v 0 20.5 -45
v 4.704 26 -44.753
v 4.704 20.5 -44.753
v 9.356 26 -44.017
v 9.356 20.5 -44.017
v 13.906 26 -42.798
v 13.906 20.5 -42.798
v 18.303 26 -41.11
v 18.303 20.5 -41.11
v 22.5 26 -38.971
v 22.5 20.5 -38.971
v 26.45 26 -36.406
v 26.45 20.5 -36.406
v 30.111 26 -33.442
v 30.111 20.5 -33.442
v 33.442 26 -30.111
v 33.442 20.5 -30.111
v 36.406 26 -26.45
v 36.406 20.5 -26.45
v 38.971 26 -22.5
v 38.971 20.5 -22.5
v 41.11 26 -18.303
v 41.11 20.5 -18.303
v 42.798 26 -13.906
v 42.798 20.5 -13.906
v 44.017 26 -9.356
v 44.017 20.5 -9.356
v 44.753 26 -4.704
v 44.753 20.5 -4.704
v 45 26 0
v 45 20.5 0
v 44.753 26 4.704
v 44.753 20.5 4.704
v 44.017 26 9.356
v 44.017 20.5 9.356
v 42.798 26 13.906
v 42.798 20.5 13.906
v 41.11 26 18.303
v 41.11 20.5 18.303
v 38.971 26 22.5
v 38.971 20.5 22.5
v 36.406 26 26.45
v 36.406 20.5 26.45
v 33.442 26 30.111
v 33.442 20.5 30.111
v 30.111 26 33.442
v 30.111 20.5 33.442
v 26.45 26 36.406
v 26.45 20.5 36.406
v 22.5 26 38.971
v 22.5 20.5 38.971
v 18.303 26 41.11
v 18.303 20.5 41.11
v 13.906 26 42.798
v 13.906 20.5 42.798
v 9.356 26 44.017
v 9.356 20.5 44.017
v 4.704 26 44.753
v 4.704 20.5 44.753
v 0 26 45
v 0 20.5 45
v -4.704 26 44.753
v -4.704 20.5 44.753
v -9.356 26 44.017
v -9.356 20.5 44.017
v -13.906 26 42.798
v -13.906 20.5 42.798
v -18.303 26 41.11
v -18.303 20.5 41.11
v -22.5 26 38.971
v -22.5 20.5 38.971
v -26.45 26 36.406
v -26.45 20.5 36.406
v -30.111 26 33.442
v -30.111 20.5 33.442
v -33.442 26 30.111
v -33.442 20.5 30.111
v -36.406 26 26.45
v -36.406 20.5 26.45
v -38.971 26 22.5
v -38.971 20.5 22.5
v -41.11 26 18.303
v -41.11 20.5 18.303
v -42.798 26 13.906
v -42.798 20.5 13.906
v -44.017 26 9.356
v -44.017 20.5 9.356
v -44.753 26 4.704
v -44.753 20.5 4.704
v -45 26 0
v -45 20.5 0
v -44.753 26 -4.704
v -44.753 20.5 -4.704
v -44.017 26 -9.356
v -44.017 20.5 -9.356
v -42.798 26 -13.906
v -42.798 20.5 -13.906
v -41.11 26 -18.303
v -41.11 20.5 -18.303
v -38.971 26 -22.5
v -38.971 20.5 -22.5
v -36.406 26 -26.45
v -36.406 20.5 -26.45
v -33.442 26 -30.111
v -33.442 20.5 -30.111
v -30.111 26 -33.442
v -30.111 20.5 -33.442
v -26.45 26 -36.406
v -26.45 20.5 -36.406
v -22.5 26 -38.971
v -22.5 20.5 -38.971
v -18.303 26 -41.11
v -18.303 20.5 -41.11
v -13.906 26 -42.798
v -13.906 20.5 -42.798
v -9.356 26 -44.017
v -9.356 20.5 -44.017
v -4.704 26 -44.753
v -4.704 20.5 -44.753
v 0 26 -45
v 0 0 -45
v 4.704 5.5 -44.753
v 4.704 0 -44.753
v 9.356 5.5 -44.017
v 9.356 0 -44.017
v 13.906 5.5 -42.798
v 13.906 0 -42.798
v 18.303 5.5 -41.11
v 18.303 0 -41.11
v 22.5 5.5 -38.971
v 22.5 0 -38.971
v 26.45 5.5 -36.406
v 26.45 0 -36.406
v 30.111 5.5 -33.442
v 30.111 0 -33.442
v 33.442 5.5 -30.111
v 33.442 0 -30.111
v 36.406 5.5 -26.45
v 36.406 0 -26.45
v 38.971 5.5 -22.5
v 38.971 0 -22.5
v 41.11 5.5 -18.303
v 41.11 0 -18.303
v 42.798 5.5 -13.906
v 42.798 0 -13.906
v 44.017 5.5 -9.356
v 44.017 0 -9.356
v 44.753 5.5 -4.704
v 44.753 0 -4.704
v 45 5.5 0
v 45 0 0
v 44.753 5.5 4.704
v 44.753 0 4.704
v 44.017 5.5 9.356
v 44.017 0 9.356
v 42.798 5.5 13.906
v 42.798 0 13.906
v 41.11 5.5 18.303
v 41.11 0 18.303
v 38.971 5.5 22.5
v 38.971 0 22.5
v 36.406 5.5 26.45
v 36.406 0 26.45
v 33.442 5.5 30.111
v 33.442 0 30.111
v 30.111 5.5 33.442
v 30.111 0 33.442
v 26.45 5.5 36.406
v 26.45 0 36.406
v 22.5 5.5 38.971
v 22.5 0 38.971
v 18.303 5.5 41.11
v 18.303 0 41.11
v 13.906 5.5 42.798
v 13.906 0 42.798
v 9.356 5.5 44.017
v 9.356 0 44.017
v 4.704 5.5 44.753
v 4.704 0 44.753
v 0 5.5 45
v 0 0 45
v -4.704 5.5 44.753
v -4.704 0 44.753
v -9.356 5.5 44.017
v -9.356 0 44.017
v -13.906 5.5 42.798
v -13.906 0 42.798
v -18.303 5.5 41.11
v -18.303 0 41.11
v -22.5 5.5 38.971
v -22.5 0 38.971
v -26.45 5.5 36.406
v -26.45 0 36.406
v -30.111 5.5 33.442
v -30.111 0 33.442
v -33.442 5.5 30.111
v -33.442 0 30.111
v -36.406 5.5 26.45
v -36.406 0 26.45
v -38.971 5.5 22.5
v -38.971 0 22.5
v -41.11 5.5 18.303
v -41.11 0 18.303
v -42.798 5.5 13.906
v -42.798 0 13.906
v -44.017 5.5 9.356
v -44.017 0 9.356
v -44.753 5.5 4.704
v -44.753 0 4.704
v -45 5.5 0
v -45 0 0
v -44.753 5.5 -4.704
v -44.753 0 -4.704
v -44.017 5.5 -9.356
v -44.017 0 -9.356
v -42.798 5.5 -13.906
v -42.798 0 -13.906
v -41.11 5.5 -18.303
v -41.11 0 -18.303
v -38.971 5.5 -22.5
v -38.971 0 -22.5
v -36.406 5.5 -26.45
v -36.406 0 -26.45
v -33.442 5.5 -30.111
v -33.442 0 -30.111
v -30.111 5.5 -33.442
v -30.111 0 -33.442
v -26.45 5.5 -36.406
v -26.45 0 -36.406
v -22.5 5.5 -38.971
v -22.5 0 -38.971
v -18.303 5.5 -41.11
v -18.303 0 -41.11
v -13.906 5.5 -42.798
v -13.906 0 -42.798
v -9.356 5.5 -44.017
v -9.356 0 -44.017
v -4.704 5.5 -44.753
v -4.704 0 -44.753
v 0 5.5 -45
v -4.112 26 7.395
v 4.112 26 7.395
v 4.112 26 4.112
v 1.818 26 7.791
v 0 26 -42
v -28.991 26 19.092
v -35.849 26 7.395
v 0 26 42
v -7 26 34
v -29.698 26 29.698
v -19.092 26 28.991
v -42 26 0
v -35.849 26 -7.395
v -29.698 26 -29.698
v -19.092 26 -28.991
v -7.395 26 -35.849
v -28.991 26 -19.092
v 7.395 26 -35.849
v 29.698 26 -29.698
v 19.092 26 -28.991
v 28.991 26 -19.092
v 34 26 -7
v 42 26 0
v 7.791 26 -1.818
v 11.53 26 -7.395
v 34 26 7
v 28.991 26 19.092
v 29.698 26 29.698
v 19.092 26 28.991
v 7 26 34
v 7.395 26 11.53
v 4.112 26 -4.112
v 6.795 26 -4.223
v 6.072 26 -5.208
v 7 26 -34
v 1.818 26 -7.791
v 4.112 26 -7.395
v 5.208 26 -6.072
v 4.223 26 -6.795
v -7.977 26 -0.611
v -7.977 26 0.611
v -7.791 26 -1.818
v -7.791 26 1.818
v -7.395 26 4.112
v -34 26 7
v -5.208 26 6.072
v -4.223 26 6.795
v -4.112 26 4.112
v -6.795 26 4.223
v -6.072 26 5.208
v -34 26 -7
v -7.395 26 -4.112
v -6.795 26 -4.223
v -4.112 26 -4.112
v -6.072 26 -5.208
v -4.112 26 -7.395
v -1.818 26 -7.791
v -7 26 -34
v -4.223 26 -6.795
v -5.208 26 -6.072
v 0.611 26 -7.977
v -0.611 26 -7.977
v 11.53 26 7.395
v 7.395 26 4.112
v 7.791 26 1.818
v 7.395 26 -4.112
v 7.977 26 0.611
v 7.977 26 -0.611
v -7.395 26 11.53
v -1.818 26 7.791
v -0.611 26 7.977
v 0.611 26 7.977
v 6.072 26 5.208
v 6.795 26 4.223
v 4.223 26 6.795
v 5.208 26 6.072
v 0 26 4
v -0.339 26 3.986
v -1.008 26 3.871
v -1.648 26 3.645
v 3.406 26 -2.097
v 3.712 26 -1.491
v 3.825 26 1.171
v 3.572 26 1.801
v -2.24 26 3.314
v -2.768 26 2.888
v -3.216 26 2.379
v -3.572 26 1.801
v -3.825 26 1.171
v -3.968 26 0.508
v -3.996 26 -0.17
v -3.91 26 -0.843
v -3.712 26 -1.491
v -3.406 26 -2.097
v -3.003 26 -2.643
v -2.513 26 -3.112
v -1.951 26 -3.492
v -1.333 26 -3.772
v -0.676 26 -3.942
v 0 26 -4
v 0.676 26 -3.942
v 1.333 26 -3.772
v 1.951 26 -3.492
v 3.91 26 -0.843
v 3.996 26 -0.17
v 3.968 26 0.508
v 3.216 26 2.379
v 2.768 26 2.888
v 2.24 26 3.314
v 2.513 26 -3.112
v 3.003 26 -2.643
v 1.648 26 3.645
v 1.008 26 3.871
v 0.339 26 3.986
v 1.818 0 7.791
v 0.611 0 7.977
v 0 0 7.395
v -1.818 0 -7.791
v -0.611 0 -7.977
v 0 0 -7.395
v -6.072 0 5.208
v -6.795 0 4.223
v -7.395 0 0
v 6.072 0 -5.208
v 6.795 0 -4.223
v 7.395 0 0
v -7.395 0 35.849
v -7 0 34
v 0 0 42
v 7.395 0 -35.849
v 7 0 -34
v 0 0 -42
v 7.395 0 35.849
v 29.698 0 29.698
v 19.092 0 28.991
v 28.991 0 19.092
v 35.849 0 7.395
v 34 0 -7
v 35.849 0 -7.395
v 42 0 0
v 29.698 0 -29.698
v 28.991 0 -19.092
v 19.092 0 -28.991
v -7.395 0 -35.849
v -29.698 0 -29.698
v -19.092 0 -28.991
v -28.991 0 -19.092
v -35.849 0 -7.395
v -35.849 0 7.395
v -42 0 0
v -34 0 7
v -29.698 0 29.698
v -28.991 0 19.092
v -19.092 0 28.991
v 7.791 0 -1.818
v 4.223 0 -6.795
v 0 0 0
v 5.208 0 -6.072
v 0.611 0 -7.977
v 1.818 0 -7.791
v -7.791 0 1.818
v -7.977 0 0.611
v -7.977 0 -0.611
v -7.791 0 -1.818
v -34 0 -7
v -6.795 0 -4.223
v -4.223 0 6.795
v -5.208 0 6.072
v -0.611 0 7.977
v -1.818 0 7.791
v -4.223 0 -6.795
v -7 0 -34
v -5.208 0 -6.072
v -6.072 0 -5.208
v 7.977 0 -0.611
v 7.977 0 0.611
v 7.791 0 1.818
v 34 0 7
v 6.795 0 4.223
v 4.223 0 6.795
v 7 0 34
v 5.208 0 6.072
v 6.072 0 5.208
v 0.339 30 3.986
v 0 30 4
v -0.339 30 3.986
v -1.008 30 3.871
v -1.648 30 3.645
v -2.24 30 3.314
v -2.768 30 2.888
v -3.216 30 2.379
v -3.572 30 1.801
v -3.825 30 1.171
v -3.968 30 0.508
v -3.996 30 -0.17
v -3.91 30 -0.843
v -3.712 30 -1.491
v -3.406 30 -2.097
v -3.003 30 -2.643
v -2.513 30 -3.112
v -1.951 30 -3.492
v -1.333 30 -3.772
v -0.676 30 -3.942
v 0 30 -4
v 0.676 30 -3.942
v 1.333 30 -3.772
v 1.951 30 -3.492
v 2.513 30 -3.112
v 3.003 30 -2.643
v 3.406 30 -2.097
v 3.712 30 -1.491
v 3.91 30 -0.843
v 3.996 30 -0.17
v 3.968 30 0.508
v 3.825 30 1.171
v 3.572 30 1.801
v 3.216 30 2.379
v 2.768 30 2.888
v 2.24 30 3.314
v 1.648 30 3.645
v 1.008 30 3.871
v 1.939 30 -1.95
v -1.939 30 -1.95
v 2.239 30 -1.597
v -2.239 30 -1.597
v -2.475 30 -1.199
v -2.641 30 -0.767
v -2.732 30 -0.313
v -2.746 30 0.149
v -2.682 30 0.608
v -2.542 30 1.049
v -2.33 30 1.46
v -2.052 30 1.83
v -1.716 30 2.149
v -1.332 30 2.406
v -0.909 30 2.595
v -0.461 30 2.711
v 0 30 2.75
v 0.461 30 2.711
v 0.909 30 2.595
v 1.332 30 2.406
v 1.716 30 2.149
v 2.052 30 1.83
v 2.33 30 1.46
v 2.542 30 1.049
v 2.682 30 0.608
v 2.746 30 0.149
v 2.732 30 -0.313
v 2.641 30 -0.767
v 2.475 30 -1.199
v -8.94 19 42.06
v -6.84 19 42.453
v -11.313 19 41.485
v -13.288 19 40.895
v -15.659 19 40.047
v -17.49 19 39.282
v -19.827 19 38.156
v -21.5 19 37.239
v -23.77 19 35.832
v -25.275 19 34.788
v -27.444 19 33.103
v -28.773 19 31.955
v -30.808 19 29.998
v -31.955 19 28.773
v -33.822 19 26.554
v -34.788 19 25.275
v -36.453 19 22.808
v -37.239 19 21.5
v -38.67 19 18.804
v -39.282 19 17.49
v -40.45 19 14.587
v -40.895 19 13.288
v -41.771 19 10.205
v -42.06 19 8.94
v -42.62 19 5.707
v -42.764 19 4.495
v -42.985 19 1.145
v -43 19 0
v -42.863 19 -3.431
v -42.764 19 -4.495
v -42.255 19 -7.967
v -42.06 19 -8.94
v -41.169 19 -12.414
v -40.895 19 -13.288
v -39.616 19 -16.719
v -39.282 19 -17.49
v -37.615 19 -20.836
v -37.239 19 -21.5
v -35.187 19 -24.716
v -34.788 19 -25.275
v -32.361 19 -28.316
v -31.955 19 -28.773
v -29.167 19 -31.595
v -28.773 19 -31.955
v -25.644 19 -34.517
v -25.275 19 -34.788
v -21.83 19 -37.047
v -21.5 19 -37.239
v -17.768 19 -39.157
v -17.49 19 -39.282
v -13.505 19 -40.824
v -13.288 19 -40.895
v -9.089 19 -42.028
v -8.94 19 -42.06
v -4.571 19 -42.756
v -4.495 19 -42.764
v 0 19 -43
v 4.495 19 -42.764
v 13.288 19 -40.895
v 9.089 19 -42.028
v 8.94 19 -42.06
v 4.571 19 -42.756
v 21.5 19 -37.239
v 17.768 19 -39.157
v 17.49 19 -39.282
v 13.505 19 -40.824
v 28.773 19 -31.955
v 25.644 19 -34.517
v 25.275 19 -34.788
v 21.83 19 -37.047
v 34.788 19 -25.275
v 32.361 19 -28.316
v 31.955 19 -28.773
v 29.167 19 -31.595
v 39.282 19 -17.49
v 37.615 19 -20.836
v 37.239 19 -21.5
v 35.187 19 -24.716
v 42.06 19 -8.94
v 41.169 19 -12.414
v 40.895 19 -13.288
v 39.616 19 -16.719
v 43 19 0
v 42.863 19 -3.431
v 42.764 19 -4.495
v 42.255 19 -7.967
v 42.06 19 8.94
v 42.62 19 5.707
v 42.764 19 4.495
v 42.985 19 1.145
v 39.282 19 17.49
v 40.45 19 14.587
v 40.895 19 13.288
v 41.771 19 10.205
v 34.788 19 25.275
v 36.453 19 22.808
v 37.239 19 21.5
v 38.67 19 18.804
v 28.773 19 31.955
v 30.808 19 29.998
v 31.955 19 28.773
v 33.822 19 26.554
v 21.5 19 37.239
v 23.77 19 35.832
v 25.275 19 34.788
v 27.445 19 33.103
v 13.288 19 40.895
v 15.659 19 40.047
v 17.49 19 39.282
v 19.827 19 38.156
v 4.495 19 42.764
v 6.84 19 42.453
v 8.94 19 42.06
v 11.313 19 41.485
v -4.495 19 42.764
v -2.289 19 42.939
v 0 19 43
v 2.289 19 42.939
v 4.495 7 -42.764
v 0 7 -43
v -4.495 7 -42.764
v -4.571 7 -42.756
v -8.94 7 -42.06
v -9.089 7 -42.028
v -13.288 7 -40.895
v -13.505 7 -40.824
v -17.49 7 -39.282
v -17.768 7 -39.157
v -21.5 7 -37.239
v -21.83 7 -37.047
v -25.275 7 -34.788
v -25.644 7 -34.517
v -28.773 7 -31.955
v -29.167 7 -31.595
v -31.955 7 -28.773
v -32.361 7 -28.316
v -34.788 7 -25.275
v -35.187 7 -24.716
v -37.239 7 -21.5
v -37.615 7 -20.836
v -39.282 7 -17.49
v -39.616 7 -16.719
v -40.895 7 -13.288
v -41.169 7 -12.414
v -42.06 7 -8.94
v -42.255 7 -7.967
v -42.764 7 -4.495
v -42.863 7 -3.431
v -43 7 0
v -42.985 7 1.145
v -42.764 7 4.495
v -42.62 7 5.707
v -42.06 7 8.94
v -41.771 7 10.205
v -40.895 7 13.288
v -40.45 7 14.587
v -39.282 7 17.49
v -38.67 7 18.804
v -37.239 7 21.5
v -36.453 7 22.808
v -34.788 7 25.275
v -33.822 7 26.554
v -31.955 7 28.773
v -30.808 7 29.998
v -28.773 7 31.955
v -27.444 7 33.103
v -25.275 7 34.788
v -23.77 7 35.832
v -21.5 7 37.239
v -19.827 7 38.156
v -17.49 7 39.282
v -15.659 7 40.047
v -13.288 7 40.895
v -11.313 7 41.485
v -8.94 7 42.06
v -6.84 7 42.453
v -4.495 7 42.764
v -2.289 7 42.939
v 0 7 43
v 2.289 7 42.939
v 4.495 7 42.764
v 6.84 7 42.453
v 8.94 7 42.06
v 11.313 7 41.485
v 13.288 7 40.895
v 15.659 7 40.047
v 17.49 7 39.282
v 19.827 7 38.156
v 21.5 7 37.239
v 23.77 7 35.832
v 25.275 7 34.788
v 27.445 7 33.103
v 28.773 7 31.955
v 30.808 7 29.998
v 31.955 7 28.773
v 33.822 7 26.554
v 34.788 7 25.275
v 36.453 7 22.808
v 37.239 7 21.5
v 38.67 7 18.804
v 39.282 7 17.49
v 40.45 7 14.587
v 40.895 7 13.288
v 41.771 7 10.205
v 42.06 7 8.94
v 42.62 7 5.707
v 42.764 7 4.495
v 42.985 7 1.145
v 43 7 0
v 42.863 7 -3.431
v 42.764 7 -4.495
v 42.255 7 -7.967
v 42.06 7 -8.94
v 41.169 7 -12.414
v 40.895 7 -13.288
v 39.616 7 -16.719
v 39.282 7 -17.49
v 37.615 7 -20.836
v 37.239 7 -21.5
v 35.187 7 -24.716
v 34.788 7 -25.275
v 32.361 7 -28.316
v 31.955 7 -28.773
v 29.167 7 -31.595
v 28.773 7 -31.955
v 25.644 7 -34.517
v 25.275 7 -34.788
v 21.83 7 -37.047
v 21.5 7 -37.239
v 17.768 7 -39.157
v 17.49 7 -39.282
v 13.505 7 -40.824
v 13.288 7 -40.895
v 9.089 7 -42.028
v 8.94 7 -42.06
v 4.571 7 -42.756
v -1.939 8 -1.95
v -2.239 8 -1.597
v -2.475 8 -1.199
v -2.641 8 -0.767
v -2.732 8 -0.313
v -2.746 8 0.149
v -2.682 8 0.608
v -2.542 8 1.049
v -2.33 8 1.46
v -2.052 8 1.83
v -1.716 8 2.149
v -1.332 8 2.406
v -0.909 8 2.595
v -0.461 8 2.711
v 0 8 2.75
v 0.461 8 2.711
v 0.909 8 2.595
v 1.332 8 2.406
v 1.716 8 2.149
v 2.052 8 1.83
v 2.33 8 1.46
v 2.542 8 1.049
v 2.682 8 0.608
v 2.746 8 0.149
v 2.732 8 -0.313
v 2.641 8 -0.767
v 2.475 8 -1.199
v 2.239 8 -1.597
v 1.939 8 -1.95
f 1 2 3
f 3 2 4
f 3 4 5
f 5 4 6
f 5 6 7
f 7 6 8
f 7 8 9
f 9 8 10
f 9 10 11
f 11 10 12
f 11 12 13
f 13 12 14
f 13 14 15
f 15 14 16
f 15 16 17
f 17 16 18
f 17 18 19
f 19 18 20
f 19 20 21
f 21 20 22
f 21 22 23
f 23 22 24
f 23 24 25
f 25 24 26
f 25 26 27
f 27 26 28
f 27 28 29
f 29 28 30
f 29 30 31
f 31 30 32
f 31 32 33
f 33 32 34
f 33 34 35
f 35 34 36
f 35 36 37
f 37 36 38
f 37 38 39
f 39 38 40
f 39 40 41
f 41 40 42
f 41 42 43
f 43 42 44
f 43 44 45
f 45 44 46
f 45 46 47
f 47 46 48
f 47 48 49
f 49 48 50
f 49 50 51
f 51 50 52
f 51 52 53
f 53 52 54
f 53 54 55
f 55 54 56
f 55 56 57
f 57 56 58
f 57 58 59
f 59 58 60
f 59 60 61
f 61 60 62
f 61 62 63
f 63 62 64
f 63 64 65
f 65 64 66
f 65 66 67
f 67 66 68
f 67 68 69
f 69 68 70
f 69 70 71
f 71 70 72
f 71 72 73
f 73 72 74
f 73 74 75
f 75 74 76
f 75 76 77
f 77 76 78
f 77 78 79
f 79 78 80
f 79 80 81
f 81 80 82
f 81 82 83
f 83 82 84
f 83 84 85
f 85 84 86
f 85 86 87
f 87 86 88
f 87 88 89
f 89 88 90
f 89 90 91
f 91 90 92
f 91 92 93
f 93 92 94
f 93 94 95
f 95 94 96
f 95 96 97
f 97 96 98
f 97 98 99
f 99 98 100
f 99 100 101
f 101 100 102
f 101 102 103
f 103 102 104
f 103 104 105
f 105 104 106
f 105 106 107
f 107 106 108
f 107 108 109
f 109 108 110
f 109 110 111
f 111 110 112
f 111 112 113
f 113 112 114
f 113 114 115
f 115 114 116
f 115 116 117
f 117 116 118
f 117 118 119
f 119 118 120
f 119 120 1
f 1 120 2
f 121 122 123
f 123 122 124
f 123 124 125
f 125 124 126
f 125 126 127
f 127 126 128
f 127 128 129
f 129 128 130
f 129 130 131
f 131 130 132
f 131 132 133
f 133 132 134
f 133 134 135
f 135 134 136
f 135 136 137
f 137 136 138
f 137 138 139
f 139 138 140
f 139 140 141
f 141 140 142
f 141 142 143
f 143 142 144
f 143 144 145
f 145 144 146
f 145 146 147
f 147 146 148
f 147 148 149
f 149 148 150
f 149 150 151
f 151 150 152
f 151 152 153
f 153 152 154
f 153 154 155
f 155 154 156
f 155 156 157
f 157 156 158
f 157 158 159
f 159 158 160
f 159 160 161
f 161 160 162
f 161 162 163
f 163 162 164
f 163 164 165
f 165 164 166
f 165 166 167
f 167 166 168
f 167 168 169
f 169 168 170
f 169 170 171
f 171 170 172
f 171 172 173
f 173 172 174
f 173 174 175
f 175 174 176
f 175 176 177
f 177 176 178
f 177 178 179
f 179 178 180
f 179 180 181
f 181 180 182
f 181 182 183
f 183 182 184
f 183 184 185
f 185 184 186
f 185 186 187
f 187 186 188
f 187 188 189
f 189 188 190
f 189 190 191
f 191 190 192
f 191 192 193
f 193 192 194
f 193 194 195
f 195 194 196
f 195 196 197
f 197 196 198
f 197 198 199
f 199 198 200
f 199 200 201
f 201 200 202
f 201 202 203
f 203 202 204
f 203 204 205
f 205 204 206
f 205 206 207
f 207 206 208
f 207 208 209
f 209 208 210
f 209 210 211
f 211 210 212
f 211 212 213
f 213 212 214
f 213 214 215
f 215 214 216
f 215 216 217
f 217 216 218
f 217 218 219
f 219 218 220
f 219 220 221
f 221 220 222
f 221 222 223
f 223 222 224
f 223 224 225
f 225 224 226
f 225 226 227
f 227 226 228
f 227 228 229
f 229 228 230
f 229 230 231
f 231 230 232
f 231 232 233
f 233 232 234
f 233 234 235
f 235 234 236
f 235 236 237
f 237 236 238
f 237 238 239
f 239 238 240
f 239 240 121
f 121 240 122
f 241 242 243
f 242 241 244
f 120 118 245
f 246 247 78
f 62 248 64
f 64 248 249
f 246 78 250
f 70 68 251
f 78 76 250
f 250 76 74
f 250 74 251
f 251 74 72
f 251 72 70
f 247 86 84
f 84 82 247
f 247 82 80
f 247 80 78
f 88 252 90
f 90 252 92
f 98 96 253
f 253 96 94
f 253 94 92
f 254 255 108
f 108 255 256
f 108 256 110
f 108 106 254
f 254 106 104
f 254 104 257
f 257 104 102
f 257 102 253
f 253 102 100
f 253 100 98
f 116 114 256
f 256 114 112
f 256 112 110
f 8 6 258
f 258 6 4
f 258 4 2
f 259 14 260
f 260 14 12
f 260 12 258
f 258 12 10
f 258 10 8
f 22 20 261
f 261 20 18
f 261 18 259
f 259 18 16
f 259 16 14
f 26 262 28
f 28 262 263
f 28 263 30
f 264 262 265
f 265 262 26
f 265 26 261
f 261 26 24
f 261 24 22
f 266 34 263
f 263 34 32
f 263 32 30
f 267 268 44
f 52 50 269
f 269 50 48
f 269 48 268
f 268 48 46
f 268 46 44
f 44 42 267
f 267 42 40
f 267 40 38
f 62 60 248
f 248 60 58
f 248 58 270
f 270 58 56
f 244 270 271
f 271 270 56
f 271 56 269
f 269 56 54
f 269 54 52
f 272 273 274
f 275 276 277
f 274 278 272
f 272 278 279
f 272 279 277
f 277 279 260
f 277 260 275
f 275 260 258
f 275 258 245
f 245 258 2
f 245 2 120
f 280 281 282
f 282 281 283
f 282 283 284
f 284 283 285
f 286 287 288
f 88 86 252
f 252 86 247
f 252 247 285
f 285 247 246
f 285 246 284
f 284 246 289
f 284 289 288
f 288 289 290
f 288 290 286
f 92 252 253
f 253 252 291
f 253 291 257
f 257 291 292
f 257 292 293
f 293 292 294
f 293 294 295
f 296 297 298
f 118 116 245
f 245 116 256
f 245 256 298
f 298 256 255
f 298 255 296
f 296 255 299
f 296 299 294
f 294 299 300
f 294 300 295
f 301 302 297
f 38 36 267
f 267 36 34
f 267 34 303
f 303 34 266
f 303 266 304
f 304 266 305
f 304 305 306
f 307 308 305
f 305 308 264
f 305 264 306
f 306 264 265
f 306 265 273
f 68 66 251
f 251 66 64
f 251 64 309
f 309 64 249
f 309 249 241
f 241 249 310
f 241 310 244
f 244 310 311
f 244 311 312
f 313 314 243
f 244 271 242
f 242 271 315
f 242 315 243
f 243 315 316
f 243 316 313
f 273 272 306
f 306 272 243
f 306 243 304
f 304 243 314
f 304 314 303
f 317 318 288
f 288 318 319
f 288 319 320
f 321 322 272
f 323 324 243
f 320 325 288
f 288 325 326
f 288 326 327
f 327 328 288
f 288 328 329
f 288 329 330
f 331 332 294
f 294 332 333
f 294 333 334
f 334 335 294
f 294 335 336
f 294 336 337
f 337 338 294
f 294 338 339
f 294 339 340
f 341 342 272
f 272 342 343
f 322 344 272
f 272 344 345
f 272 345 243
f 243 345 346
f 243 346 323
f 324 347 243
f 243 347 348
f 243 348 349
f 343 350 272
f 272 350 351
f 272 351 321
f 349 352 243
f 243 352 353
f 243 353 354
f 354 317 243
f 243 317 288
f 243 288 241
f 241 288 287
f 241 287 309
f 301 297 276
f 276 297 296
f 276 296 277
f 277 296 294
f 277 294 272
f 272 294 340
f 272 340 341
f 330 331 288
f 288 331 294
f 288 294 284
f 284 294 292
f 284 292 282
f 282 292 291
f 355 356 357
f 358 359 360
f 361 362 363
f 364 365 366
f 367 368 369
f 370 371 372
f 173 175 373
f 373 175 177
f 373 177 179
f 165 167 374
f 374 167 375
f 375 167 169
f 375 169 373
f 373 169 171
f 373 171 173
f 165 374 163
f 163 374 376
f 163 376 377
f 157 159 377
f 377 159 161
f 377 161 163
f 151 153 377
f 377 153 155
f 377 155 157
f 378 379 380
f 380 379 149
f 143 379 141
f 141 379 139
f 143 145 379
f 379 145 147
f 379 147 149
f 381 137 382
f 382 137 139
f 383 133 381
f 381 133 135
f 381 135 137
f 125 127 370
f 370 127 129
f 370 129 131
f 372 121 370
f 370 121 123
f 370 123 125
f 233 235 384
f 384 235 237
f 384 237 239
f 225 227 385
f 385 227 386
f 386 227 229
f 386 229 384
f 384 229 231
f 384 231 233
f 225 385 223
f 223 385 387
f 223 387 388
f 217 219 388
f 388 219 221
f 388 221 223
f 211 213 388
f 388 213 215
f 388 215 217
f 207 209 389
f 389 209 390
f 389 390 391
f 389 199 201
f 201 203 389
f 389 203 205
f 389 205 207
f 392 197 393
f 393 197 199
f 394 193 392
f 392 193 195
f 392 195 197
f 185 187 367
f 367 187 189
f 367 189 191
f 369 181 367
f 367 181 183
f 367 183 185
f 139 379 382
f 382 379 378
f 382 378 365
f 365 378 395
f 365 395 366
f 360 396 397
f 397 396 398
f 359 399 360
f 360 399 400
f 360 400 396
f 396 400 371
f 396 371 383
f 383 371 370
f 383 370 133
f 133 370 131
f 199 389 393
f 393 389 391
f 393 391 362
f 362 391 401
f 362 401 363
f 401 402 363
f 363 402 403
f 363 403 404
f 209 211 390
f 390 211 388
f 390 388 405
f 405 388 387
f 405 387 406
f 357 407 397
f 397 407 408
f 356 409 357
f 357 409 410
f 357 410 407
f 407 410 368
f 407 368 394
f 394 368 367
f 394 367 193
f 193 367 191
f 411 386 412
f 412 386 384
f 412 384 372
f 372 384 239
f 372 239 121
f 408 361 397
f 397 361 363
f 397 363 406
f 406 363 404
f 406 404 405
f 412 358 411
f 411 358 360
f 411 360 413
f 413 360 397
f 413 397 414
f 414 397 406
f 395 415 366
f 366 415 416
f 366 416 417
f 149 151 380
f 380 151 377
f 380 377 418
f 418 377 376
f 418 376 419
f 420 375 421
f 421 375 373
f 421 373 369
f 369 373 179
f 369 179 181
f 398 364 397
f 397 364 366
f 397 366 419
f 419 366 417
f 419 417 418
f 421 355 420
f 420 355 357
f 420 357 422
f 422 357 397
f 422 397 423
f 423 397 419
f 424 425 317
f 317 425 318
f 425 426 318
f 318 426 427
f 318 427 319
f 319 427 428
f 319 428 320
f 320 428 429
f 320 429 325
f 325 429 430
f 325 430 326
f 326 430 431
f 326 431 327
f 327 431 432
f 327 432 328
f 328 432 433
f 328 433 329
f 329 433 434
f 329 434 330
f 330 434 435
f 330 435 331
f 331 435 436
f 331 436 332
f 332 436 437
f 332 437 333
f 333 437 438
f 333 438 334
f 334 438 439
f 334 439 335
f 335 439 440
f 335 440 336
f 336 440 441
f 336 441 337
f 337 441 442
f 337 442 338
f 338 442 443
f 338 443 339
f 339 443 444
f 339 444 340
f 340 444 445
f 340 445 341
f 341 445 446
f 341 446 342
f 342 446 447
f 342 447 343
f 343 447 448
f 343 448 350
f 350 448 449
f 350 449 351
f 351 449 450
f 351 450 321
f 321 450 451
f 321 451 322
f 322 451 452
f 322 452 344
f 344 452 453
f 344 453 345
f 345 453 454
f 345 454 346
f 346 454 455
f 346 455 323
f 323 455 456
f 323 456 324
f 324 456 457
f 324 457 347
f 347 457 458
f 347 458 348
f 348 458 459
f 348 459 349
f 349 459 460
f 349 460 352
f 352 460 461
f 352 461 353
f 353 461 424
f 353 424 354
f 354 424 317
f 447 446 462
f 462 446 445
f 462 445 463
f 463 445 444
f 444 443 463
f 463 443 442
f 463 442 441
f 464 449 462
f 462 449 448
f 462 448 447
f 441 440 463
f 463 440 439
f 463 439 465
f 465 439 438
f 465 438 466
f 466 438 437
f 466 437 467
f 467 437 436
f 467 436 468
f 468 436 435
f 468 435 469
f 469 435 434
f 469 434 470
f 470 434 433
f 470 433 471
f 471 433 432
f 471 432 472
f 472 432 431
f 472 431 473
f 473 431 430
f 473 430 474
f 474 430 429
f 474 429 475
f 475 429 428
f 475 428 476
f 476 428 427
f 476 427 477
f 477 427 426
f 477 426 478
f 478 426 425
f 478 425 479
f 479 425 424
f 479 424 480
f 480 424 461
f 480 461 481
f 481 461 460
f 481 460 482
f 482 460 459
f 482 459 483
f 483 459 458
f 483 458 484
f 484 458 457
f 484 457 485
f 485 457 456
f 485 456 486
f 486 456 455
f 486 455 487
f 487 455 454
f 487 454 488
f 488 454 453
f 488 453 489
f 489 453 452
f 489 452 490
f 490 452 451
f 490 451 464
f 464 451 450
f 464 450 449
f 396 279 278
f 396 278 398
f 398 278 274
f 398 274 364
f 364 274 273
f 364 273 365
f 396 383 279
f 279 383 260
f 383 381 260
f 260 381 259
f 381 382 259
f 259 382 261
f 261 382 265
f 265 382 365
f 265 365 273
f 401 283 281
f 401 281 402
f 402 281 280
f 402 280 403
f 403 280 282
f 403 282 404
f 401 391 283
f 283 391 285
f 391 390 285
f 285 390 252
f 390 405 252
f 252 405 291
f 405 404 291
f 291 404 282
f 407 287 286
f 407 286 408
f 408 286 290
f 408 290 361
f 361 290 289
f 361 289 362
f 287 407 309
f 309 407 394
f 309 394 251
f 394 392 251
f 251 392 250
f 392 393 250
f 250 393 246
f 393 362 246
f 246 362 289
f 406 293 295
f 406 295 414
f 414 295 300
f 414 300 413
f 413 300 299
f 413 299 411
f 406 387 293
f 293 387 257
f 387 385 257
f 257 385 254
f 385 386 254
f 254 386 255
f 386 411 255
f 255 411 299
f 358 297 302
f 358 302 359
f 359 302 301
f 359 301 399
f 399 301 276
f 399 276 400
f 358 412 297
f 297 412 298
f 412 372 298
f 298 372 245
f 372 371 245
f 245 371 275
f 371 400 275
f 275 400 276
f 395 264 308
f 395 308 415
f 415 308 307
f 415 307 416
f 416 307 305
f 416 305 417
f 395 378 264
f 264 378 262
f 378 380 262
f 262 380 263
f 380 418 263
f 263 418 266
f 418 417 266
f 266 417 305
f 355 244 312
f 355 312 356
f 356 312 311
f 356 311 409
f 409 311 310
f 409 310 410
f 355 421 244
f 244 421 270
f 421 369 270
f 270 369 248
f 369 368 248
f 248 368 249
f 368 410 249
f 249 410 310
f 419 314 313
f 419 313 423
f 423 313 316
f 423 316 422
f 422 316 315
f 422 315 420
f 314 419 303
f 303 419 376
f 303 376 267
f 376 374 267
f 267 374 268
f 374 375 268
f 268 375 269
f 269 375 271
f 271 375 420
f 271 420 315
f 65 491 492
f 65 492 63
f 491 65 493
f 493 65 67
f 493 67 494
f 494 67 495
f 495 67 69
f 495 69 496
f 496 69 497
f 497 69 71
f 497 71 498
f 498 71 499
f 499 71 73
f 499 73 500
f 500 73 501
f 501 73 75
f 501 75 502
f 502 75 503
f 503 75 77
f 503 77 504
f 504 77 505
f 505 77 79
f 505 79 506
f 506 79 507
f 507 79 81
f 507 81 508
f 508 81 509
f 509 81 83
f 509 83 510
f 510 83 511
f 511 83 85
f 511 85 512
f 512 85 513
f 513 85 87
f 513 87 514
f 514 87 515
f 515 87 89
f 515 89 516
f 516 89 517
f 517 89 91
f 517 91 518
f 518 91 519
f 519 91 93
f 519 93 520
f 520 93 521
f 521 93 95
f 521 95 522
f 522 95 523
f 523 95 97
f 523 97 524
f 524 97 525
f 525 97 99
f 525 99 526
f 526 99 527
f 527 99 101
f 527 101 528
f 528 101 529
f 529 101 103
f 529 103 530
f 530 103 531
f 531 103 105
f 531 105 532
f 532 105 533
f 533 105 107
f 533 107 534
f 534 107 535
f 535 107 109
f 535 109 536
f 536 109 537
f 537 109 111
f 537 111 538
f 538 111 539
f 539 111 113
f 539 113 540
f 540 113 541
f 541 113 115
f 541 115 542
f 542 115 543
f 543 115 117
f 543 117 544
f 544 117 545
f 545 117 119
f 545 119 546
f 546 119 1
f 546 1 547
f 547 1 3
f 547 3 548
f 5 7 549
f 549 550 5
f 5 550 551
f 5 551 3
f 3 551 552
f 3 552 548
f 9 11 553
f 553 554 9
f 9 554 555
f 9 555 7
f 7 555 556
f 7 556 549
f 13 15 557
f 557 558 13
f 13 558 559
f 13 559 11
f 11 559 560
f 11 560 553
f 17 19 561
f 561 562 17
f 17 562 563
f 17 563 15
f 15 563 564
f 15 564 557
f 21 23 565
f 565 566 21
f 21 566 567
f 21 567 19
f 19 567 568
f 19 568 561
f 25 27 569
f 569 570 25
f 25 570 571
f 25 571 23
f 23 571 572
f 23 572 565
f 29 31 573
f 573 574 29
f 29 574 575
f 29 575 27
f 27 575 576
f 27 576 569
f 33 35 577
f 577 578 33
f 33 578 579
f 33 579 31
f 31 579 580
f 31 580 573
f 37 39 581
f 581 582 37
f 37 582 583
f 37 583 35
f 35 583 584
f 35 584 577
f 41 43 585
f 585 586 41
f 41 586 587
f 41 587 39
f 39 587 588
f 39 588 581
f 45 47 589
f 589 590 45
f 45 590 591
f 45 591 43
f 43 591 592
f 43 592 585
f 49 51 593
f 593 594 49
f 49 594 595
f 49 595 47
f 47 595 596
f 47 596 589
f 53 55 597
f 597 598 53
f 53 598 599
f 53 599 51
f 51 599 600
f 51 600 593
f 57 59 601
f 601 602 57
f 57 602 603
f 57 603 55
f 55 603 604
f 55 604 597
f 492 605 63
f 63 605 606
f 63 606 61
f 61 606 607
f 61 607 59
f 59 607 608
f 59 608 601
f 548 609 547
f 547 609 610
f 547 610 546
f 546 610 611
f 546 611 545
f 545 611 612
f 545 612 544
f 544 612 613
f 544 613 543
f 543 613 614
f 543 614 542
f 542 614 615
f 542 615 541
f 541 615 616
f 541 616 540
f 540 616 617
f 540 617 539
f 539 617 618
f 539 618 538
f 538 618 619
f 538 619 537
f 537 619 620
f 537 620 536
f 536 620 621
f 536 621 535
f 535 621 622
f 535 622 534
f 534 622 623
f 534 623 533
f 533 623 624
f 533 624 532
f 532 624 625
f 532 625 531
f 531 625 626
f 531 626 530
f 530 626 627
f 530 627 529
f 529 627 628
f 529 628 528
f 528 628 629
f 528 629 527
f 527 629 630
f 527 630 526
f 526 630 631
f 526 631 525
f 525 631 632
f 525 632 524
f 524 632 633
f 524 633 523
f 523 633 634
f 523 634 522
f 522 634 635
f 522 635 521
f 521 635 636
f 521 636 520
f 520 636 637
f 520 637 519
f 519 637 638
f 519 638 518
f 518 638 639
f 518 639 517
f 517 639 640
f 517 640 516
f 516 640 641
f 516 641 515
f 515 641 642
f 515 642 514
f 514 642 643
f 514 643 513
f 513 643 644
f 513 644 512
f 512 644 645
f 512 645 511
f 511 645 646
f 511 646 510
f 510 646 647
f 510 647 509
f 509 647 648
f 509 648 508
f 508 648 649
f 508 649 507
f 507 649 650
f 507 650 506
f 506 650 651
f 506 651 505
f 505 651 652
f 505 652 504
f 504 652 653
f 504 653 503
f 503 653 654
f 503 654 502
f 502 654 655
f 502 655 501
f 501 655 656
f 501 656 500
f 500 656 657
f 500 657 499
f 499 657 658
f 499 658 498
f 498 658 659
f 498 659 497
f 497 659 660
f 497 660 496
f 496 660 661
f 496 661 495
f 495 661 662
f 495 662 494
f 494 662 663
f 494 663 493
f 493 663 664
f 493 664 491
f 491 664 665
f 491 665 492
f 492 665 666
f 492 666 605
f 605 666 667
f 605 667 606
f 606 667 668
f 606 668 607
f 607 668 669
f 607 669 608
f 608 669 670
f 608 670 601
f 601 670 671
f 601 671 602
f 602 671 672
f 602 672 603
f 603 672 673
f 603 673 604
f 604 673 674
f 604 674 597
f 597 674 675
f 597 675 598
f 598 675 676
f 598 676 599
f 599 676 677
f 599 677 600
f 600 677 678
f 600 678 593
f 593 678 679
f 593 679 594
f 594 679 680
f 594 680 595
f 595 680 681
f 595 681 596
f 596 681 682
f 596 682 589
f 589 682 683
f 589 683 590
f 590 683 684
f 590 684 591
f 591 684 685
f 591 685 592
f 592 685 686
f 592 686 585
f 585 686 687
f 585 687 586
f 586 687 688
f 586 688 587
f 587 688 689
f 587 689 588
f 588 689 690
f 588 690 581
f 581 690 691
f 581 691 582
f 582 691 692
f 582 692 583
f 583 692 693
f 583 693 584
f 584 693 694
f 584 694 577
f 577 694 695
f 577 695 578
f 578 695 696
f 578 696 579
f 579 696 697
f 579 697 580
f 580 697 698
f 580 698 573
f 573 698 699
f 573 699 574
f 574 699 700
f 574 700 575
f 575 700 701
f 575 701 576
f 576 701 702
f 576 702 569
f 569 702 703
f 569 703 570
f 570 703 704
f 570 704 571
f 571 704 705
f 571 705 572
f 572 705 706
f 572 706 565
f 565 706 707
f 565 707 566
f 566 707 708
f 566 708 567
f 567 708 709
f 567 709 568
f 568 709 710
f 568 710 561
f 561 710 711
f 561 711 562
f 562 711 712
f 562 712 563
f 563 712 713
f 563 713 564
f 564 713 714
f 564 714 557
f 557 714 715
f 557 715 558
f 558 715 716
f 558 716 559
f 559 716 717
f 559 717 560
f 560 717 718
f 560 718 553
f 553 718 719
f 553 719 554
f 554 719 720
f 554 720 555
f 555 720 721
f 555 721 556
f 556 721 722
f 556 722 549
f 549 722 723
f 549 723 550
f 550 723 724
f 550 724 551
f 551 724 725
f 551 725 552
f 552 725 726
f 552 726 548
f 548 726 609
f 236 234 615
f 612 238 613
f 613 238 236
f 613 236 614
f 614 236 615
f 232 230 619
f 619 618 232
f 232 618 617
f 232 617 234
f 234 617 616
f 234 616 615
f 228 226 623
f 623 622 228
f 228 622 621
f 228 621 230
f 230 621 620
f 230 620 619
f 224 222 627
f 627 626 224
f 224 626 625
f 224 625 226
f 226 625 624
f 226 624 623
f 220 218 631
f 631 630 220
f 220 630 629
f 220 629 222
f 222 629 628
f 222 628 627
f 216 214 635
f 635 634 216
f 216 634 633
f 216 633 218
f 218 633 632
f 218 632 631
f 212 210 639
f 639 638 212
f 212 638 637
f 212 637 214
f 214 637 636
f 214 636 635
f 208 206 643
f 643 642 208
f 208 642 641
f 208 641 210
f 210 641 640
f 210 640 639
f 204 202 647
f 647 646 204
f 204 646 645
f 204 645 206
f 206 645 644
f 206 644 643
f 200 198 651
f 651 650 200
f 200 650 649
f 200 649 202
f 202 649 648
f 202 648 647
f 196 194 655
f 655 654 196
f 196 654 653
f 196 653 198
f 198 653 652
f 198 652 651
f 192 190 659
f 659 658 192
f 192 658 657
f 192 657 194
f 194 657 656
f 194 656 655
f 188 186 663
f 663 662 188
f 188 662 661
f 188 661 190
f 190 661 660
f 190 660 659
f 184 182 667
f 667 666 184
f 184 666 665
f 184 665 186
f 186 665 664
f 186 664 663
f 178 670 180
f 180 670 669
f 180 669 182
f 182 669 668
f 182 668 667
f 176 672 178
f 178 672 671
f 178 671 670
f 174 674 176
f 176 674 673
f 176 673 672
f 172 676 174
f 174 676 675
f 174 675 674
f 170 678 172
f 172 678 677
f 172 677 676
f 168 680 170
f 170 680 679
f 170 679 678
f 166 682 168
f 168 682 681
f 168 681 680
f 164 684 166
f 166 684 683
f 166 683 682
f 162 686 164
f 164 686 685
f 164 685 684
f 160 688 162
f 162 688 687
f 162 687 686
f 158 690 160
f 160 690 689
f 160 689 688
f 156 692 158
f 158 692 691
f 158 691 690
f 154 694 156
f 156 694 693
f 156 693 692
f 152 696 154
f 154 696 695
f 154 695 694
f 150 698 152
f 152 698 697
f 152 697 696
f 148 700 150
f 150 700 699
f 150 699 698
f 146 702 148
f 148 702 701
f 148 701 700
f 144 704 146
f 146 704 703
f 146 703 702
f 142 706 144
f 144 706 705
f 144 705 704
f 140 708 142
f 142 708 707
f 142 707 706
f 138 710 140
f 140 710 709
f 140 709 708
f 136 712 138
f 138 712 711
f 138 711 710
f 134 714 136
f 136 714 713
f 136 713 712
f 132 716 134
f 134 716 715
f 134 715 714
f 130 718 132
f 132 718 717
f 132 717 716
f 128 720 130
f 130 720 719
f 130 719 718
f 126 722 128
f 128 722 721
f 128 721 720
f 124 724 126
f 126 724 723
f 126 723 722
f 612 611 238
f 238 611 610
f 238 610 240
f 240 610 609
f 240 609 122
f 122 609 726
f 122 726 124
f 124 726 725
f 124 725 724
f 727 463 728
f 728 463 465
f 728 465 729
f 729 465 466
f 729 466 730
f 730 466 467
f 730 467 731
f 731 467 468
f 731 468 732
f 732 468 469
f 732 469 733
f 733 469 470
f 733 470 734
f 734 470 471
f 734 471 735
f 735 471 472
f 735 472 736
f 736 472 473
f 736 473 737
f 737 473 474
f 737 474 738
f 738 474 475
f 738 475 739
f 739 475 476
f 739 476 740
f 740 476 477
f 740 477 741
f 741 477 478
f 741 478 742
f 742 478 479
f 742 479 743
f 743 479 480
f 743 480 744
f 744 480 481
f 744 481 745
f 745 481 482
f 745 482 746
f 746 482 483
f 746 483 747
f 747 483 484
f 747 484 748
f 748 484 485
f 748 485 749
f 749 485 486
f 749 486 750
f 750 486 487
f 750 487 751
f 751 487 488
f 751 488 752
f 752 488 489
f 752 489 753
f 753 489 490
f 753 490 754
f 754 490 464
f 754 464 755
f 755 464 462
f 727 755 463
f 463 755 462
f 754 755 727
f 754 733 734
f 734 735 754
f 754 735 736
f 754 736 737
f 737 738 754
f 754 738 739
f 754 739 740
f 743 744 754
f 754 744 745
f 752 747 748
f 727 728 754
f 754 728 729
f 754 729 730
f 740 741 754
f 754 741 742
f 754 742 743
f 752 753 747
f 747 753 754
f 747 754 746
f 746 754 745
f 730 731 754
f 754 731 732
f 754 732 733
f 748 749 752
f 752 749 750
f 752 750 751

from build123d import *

# Parameters (mm, degrees)
SKETCH1_R           = 45
BOSS_EXTRUDE1_DEPTH = 26
SKETCH2_R           = 4
BOSS_EXTRUDE2_DEPTH = 4
CUT_EXTRUDE2_DEPTH  = 69.745908969
CUT_EXTRUDE4_DEPTH  = 22


with BuildPart() as part:
    # Sketch1 → Boss-Extrude1 (new body)
    with BuildSketch(Plane(origin=(0, 0, 0), x_dir=(1, 0, 0), z_dir=(0, 1, 0))):
        with Locations(Location((0, 0, 0), (0, 0, 90))):
            Circle(SKETCH1_R)
    extrude(amount=BOSS_EXTRUDE1_DEPTH)

    # Sketch2 → Boss-Extrude2 (add)
    with BuildSketch(Plane(origin=(0, 26, 0), x_dir=(1, 0, 0), z_dir=(0, 1, 0))):
        with Locations(Location((0, 0, 0), (0, 0, 270))):
            Circle(SKETCH2_R)
    extrude(amount=BOSS_EXTRUDE2_DEPTH)

    # Sketch4 → Cut-Extrude2 (cut, through all)
    with BuildSketch(Plane(origin=(0, 26, 0), x_dir=(1, 0, 0), z_dir=(0, 1, 0))):
        with BuildLine():
            Line((-1.818379611, 7.790603031), (-7, 34))
            Line((-7, 34), (0, 42))
            Line((0, 42), (7, 34))
            Line((7, 34), (1.818379611, 7.790603031))
            ThreePointArc((1.818379611, 7.790603031), (0, 8), (-1.818379611, 7.790603031))
        make_face()
        with BuildLine():
            Line((4.222999679, 6.794576787), (19.091883092, 28.991378029))
            Line((19.091883092, 28.991378029), (29.69848481, 29.69848481))
            Line((29.69848481, 29.69848481), (28.991378029, 19.091883092))
            Line((28.991378029, 19.091883092), (6.794576787, 4.222999679))
            ThreePointArc((6.794576787, 4.222999679), (5.656854249, 5.656854249), (4.222999679, 6.794576787))
        make_face()
        with BuildLine():
            Line((7.790603031, 1.818379611), (34, 7))
            Line((34, 7), (42, 0))
            Line((42, 0), (34, -7))
            Line((34, -7), (7.790603031, -1.818379611))
            ThreePointArc((7.790603031, -1.818379611), (8, 0), (7.790603031, 1.818379611))
        make_face()
        with BuildLine():
            Line((6.794576787, -4.222999679), (28.991378029, -19.091883092))
            Line((28.991378029, -19.091883092), (29.69848481, -29.69848481))
            Line((29.69848481, -29.69848481), (19.091883092, -28.991378029))
            Line((19.091883092, -28.991378029), (4.222999679, -6.794576787))
            ThreePointArc((4.222999679, -6.794576787), (5.656854249, -5.656854249), (6.794576787, -4.222999679))
        make_face()
        with BuildLine():
            Line((1.818379611, -7.790603031), (7, -34))
            Line((7, -34), (0, -42))
            Line((0, -42), (-7, -34))
            Line((-7, -34), (-1.818379611, -7.790603031))
            ThreePointArc((-1.818379611, -7.790603031), (0, -8), (1.818379611, -7.790603031))
        make_face()
        with BuildLine():
            Line((-4.222999679, -6.794576787), (-19.091883092, -28.991378029))
            Line((-19.091883092, -28.991378029), (-29.69848481, -29.69848481))
            Line((-29.69848481, -29.69848481), (-28.991378029, -19.091883092))
            Line((-28.991378029, -19.091883092), (-6.794576787, -4.222999679))
            ThreePointArc((-6.794576787, -4.222999679), (-5.656854249, -5.656854249), (-4.222999679, -6.794576787))
        make_face()
        with BuildLine():
            Line((-7.790603031, -1.818379611), (-34, -7))
            Line((-34, -7), (-42, 0))
            Line((-42, 0), (-34, 7))
            Line((-34, 7), (-7.790603031, 1.818379611))
            ThreePointArc((-7.790603031, 1.818379611), (-8, 0), (-7.790603031, -1.818379611))
        make_face()
        with BuildLine():
            Line((-6.794576787, 4.222999679), (-28.991378029, 19.091883092))
            Line((-28.991378029, 19.091883092), (-29.69848481, 29.69848481))
            Line((-29.69848481, 29.69848481), (-19.091883092, 28.991378029))
            Line((-19.091883092, 28.991378029), (-4.222999679, 6.794576787))
            ThreePointArc((-4.222999679, 6.794576787), (-5.656854249, 5.656854249), (-6.794576787, 4.222999679))
        make_face()
    extrude(amount=-CUT_EXTRUDE2_DEPTH, mode=Mode.SUBTRACT)

    # Sketch6 → Cut-Revolve4 (revolve, cut)
    with BuildSketch(Plane(origin=(0, 0, 0), x_dir=(0, 0, -1), z_dir=(1, 0, 0)), mode=Mode.PRIVATE) as cut_revolve4_sk:
        Polygon((-45, 20.5), (-43, 19), (-43, 13), (-43, 7), (-45, 5.5), align=None)
    revolve(cut_revolve4_sk.sketch.rotate(Axis((0, 0, 0), (0, 1, 0)), 180), axis=Axis((0, 0, 0), (0, 1, 0)), mode=Mode.SUBTRACT)

    # Sketch9 → Cut-Extrude4 (cut)
    with BuildSketch(Plane(origin=(0, 30, 0), x_dir=(1, 0, 0), z_dir=(0, 1, 0))):
        with BuildLine():
            Line((-1.939071943, 1.95), (1.939071943, 1.95))
            ThreePointArc((1.939071943, 1.95), (0, -2.75), (-1.939071943, 1.95))
        make_face()
    extrude(amount=-CUT_EXTRUDE4_DEPTH, mode=Mode.SUBTRACT)


solid = part.part
